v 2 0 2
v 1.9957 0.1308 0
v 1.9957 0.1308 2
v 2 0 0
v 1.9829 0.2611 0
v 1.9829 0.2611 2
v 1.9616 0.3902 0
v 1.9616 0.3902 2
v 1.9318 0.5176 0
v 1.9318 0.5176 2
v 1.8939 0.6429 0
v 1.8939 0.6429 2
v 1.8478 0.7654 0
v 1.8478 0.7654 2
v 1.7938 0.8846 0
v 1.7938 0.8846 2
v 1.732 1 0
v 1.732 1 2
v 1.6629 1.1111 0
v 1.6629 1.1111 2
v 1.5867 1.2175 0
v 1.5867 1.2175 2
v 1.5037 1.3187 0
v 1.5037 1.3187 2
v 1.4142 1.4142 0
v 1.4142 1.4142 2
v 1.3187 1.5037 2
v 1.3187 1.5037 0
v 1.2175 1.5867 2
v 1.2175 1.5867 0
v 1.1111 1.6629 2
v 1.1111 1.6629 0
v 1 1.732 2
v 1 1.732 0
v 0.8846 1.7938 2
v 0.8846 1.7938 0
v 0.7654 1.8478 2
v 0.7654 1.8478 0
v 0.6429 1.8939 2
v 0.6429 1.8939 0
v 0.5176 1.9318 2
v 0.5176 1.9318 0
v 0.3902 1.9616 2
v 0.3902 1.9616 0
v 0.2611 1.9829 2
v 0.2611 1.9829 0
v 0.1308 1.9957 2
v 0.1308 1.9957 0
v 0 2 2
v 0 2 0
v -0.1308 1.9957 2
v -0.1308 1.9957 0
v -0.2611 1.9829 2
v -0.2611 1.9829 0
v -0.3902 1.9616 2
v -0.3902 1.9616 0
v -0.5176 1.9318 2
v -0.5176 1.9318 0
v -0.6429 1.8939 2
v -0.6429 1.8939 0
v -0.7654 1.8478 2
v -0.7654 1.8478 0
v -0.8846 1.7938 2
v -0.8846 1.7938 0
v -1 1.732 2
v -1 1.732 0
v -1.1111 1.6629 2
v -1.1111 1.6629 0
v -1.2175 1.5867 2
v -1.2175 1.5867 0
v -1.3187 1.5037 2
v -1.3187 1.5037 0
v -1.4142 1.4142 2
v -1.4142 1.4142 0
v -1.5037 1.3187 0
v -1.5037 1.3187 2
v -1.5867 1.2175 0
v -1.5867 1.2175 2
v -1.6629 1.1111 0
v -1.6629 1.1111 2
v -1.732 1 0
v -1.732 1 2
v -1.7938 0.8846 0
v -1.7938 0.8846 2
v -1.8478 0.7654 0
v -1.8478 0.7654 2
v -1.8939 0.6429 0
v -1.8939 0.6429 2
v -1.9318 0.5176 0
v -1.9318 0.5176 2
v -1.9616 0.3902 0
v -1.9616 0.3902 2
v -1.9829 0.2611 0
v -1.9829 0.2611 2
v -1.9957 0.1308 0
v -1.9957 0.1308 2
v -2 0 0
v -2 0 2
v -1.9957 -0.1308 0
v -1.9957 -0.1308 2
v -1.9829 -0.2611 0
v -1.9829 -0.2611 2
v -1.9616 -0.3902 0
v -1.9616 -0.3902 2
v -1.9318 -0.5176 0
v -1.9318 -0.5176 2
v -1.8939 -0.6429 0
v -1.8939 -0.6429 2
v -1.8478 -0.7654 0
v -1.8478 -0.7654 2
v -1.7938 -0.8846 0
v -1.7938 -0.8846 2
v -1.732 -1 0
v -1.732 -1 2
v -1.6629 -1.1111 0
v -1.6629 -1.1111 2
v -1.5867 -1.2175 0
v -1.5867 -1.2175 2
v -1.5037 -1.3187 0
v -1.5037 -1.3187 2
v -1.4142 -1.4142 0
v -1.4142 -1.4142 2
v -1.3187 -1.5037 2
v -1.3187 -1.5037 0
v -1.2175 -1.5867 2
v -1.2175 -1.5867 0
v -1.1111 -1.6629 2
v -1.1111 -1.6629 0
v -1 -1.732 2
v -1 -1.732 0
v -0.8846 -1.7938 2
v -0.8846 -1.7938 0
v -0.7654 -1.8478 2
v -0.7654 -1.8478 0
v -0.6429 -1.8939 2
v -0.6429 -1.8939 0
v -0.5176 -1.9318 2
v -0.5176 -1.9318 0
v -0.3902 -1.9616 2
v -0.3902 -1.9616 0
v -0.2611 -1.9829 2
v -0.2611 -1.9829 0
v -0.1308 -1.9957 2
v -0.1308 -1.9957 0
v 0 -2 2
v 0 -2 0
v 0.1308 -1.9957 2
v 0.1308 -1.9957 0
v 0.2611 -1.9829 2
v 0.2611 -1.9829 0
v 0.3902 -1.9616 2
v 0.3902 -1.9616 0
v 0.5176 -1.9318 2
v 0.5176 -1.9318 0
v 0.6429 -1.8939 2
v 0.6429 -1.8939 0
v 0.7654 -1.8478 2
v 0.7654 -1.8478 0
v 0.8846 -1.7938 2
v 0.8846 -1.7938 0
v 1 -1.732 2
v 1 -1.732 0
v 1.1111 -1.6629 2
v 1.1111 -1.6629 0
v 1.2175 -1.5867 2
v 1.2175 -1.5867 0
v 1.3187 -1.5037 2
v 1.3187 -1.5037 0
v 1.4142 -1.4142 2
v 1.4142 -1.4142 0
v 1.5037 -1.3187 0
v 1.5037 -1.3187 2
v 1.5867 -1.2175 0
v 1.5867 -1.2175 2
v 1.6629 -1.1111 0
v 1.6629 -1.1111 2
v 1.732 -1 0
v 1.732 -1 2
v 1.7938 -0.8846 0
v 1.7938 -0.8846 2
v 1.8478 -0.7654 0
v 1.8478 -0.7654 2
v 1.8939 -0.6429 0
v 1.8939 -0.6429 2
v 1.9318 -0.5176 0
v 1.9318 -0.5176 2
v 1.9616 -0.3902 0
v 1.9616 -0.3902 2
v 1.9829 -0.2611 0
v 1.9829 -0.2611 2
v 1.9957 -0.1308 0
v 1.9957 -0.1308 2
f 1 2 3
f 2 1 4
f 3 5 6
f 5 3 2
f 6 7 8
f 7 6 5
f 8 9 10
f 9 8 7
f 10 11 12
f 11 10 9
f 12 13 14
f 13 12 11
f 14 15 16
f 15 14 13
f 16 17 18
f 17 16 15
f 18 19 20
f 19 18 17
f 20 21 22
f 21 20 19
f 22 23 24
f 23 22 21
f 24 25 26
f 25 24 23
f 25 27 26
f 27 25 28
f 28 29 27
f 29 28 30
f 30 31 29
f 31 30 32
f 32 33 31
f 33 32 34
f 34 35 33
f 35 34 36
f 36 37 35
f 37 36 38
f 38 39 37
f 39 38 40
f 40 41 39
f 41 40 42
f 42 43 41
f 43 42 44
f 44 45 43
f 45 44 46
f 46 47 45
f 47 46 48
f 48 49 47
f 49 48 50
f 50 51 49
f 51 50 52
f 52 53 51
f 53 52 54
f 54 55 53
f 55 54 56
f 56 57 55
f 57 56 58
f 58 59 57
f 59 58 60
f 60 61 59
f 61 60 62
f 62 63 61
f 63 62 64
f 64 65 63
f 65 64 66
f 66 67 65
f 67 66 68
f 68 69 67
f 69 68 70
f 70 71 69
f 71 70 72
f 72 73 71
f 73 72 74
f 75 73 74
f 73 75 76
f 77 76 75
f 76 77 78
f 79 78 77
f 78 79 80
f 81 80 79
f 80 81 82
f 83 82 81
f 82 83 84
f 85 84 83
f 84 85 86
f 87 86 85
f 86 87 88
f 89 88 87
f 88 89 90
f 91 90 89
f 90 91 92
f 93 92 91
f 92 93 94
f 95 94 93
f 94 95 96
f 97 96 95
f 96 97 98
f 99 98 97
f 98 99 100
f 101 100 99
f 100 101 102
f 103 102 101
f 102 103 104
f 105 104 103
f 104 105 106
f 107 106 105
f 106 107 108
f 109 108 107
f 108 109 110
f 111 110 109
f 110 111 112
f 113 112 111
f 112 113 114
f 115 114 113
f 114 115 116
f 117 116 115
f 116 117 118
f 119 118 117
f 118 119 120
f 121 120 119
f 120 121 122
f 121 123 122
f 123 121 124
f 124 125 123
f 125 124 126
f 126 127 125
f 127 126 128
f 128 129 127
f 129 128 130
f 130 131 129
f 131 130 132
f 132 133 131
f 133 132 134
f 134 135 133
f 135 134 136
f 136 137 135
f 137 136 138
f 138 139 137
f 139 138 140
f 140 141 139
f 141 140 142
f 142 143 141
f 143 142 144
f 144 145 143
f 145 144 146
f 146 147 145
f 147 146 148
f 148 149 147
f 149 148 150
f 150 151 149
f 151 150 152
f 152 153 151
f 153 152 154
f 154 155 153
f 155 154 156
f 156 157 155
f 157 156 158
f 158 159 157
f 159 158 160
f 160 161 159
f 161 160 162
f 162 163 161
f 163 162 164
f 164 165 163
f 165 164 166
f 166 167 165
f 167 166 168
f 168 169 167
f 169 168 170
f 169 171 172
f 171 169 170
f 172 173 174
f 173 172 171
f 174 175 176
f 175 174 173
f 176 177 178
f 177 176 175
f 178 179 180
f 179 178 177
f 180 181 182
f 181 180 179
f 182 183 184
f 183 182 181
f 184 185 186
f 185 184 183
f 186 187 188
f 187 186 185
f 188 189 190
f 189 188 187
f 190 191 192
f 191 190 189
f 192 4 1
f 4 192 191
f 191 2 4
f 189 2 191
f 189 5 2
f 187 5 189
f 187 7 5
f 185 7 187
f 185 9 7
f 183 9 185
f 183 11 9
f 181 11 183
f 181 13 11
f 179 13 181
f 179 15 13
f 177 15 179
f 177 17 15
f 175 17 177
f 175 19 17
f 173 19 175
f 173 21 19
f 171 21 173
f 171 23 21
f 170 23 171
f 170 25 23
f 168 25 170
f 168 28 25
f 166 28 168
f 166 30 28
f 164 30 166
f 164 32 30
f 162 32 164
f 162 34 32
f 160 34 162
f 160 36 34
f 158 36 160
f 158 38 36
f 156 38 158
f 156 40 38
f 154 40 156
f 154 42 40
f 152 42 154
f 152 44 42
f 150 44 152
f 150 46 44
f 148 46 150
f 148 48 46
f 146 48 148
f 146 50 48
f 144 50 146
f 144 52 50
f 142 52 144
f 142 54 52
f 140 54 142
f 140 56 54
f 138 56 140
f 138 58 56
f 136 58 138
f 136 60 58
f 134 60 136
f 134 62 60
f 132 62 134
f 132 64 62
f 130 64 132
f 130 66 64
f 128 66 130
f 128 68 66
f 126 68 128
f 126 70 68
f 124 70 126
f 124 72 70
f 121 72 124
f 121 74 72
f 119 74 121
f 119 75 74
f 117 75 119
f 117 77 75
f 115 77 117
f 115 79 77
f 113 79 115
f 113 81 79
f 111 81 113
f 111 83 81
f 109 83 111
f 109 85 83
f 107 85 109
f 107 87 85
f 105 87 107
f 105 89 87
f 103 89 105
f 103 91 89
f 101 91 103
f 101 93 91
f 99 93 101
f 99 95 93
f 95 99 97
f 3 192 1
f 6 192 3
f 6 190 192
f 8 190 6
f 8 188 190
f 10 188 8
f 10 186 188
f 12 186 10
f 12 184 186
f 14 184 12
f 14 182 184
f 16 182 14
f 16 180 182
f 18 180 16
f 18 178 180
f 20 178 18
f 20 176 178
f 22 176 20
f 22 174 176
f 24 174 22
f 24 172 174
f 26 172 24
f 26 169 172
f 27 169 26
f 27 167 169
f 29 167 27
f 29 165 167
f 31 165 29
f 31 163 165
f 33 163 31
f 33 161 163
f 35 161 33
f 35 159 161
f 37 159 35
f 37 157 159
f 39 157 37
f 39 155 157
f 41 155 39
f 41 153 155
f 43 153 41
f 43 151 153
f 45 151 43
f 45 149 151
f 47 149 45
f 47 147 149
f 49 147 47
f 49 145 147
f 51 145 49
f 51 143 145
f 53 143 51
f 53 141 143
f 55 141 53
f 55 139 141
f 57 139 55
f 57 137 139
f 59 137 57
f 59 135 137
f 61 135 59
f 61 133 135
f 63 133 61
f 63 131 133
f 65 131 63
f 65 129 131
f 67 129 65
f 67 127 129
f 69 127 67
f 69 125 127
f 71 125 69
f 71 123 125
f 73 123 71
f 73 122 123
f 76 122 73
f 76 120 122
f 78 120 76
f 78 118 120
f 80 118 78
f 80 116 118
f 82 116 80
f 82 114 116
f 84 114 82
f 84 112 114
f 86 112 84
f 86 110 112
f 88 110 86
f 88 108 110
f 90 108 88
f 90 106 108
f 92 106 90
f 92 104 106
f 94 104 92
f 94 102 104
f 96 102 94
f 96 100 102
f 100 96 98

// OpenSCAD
// ============================================================================
//  AS5600 Diametric Magnet — Dimensional Dummy (v1.0)
//  WRO Future Engineers 2026 • Team Faith
//
//  This is a 1:1 SIZE MODEL of the AS5600 magnet — a plain cylinder at the
//  magnet's real dimensions, nothing more. It is NOT a working magnet: a 3D
//  printer prints plastic, so this prints a non-magnetic blank.
//
//  What it's good for:
//    • Test-fit the pocket in magnet_adapter.scad WITHOUT risking the real
//      magnet (the real ones are easy to lose/crack — see shopping list).
//    • Check the 1.5 mm air gap / clearances in the printed assembly.
//    • A stand-in spacer while a real magnet is on order.
//
//  Magnet spec (matches magnet_adapter.scad — our actual magnet):
//    Diametrically-magnetised neodymium disc, 4.0 mm dia x 2.0 mm thick,
//    N35-N52. Note: this is SMALLER than the AS5600 datasheet nominal (6 mm),
//    so the usable air gap is tighter — run ~0.5-1.0 mm and check the AGC
//    register reads mid-range (not pinned), not the 1.5 mm a 6 mm magnet allows.
//    Sources:
//      ams AS5600 datasheet (Mouser): AMS_AS5600_Datasheet_EN.PDF
//      SimpleFOC community: "What diameter magnet works best with AS5xxx"
//
//  PRINT SETTINGS:
//    Material: PLA or PETG (it's just a fit gauge)
//    Layer height: 0.12 mm (small part — finer layers fit the pocket better)
//    Infill: 100%
//    No supports.
//    Print 2 (one fit-check per wheel adapter).
// ============================================================================

/* [Diametric magnet — measure yours, then match the adapter] */
MAGNET_D       = 4.0;   // our magnet: 4 mm cylindrical diametric (datasheet nominal is 6 mm)
MAGNET_T       = 2.0;   // magnet thickness

/* [Pole indicator — optional visual only, off by default ("nothing more")] */
// A real diametric magnet has N/S split across the DIAMETER (the side), not
// the flat faces. Set true to engrave a thin line across the top marking that
// axis — handy as a build reminder. It does NOT change the printed size.
SHOW_POLE_LINE = false;
POLE_LINE_W    = 0.4;   // engraved line width
POLE_LINE_D    = 0.3;   // engraved line depth

$fn = 96;

// ============================================================================
//  MODEL
// ============================================================================
module magnet_dummy() {
    difference() {
        // The magnet, exactly to size: 6.0 dia x 2.5 thick.
        cylinder(d=MAGNET_D, h=MAGNET_T);

        // Optional engraved pole-axis line across the top face.
        if (SHOW_POLE_LINE)
            translate([0, 0, MAGNET_T - POLE_LINE_D])
                cube([MAGNET_D + 1, POLE_LINE_W, POLE_LINE_D + 0.1], center=true);
    }
}

magnet_dummy();

// ============================================================================
//  USAGE
//  1. Print 1-2 of these.
//  2. Drop into the magnet_adapter.scad pocket. Snug = good. If it won't seat,
//     bump MAGNET_FIT in magnet_adapter.scad to 0.20 and reprint the adapter;
//     if it rattles, drop MAGNET_FIT to 0.10.
//  3. Once the fit is right, swap in the REAL diametric magnet for the car.
// ============================================================================
